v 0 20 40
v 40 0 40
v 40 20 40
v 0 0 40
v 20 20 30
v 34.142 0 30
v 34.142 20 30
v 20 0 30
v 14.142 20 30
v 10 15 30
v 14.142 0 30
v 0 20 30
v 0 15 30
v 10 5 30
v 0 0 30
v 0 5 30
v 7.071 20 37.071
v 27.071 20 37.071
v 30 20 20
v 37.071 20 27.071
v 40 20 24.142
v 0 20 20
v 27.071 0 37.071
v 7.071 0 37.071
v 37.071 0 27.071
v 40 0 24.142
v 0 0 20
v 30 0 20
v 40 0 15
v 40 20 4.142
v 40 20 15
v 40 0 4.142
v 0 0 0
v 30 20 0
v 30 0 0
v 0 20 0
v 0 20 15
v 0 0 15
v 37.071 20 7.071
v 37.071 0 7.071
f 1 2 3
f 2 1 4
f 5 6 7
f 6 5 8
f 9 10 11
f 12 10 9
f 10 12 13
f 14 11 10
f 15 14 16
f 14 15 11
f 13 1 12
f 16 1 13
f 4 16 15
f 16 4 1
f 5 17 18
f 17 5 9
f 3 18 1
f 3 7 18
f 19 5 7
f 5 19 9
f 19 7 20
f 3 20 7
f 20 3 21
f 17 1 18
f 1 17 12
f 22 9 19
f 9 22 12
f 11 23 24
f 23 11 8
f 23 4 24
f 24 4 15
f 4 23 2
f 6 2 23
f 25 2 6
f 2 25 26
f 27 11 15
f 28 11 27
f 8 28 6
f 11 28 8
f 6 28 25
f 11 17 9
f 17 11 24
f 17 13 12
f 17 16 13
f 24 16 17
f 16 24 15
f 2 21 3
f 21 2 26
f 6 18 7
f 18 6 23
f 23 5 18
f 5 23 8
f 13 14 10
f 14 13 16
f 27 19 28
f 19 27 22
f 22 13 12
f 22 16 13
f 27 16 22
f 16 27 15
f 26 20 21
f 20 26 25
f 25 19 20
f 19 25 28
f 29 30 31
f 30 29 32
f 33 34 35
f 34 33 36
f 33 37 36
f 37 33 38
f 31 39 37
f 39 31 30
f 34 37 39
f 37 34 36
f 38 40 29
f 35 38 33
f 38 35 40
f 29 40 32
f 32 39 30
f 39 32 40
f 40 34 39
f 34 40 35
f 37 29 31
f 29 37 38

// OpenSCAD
// Base Block
module base_block() {
    difference() {
        cube([40, 20, 10]); // Main rectangular block
        translate([30, 0, 0]) rotate([0, 45, 0]) cube([20, 20, 10]); // Slanted edge
        translate([0, 5, 10]) cube([10, 10, 5]); // Rectangular protrusion
    }
}

// Angled Block
module angled_block() {
    difference() {
        cube([20, 20, 10]); // Main rectangular base
        translate([0, 0, 0]) rotate([0, 45, 0]) cube([20, 20, 10]); // Slanted edge
    }
}

// Flat Block
module flat_block() {
    cube([40, 20, 5]); // Simple rectangular block
}

// Connector Block
module connector_block() {
    difference() {
        cube([40, 20, 10]); // Main rectangular block
        translate([30, 0, 0]) rotate([0, 45, 0]) cube([20, 20, 10]); // Slanted edge
        translate([0, 5, 10]) cube([10, 10, 5]); // Rectangular protrusion
    }
}

// Assembly
module assembly() {
    // Layer 1: Angled Blocks
    translate([0, 0, 30]) angled_block();
    translate([20, 0, 30]) angled_block();

    // Layer 2: Connector Block
    translate([0, 0, 20]) connector_block();

    // Layer 3: Flat Block
    translate([0, 0, 10]) flat_block();

    // Layer 4: Base Block
    translate([0, 0, 0]) base_block();
}

// Render the assembly
assembly();
